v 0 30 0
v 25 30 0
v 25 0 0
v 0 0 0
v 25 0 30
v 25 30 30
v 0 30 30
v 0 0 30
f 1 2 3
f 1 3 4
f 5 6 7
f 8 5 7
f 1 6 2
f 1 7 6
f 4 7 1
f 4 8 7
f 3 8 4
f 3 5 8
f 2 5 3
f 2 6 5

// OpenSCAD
module stripe(width, height, color1, color2, angle) {
  linear_extrude(height = height) {
    polygon(points = [
      [0,0],
      [width/2, 0],
      [width/2, height * tan(angle)],
      [0, height * tan(angle)]
    ]);
  }
}

// Example usage:
stripe(width = 50, height = 30, color1 = [1, 0, 0], color2 = [0, 0, 1], angle = 45);
